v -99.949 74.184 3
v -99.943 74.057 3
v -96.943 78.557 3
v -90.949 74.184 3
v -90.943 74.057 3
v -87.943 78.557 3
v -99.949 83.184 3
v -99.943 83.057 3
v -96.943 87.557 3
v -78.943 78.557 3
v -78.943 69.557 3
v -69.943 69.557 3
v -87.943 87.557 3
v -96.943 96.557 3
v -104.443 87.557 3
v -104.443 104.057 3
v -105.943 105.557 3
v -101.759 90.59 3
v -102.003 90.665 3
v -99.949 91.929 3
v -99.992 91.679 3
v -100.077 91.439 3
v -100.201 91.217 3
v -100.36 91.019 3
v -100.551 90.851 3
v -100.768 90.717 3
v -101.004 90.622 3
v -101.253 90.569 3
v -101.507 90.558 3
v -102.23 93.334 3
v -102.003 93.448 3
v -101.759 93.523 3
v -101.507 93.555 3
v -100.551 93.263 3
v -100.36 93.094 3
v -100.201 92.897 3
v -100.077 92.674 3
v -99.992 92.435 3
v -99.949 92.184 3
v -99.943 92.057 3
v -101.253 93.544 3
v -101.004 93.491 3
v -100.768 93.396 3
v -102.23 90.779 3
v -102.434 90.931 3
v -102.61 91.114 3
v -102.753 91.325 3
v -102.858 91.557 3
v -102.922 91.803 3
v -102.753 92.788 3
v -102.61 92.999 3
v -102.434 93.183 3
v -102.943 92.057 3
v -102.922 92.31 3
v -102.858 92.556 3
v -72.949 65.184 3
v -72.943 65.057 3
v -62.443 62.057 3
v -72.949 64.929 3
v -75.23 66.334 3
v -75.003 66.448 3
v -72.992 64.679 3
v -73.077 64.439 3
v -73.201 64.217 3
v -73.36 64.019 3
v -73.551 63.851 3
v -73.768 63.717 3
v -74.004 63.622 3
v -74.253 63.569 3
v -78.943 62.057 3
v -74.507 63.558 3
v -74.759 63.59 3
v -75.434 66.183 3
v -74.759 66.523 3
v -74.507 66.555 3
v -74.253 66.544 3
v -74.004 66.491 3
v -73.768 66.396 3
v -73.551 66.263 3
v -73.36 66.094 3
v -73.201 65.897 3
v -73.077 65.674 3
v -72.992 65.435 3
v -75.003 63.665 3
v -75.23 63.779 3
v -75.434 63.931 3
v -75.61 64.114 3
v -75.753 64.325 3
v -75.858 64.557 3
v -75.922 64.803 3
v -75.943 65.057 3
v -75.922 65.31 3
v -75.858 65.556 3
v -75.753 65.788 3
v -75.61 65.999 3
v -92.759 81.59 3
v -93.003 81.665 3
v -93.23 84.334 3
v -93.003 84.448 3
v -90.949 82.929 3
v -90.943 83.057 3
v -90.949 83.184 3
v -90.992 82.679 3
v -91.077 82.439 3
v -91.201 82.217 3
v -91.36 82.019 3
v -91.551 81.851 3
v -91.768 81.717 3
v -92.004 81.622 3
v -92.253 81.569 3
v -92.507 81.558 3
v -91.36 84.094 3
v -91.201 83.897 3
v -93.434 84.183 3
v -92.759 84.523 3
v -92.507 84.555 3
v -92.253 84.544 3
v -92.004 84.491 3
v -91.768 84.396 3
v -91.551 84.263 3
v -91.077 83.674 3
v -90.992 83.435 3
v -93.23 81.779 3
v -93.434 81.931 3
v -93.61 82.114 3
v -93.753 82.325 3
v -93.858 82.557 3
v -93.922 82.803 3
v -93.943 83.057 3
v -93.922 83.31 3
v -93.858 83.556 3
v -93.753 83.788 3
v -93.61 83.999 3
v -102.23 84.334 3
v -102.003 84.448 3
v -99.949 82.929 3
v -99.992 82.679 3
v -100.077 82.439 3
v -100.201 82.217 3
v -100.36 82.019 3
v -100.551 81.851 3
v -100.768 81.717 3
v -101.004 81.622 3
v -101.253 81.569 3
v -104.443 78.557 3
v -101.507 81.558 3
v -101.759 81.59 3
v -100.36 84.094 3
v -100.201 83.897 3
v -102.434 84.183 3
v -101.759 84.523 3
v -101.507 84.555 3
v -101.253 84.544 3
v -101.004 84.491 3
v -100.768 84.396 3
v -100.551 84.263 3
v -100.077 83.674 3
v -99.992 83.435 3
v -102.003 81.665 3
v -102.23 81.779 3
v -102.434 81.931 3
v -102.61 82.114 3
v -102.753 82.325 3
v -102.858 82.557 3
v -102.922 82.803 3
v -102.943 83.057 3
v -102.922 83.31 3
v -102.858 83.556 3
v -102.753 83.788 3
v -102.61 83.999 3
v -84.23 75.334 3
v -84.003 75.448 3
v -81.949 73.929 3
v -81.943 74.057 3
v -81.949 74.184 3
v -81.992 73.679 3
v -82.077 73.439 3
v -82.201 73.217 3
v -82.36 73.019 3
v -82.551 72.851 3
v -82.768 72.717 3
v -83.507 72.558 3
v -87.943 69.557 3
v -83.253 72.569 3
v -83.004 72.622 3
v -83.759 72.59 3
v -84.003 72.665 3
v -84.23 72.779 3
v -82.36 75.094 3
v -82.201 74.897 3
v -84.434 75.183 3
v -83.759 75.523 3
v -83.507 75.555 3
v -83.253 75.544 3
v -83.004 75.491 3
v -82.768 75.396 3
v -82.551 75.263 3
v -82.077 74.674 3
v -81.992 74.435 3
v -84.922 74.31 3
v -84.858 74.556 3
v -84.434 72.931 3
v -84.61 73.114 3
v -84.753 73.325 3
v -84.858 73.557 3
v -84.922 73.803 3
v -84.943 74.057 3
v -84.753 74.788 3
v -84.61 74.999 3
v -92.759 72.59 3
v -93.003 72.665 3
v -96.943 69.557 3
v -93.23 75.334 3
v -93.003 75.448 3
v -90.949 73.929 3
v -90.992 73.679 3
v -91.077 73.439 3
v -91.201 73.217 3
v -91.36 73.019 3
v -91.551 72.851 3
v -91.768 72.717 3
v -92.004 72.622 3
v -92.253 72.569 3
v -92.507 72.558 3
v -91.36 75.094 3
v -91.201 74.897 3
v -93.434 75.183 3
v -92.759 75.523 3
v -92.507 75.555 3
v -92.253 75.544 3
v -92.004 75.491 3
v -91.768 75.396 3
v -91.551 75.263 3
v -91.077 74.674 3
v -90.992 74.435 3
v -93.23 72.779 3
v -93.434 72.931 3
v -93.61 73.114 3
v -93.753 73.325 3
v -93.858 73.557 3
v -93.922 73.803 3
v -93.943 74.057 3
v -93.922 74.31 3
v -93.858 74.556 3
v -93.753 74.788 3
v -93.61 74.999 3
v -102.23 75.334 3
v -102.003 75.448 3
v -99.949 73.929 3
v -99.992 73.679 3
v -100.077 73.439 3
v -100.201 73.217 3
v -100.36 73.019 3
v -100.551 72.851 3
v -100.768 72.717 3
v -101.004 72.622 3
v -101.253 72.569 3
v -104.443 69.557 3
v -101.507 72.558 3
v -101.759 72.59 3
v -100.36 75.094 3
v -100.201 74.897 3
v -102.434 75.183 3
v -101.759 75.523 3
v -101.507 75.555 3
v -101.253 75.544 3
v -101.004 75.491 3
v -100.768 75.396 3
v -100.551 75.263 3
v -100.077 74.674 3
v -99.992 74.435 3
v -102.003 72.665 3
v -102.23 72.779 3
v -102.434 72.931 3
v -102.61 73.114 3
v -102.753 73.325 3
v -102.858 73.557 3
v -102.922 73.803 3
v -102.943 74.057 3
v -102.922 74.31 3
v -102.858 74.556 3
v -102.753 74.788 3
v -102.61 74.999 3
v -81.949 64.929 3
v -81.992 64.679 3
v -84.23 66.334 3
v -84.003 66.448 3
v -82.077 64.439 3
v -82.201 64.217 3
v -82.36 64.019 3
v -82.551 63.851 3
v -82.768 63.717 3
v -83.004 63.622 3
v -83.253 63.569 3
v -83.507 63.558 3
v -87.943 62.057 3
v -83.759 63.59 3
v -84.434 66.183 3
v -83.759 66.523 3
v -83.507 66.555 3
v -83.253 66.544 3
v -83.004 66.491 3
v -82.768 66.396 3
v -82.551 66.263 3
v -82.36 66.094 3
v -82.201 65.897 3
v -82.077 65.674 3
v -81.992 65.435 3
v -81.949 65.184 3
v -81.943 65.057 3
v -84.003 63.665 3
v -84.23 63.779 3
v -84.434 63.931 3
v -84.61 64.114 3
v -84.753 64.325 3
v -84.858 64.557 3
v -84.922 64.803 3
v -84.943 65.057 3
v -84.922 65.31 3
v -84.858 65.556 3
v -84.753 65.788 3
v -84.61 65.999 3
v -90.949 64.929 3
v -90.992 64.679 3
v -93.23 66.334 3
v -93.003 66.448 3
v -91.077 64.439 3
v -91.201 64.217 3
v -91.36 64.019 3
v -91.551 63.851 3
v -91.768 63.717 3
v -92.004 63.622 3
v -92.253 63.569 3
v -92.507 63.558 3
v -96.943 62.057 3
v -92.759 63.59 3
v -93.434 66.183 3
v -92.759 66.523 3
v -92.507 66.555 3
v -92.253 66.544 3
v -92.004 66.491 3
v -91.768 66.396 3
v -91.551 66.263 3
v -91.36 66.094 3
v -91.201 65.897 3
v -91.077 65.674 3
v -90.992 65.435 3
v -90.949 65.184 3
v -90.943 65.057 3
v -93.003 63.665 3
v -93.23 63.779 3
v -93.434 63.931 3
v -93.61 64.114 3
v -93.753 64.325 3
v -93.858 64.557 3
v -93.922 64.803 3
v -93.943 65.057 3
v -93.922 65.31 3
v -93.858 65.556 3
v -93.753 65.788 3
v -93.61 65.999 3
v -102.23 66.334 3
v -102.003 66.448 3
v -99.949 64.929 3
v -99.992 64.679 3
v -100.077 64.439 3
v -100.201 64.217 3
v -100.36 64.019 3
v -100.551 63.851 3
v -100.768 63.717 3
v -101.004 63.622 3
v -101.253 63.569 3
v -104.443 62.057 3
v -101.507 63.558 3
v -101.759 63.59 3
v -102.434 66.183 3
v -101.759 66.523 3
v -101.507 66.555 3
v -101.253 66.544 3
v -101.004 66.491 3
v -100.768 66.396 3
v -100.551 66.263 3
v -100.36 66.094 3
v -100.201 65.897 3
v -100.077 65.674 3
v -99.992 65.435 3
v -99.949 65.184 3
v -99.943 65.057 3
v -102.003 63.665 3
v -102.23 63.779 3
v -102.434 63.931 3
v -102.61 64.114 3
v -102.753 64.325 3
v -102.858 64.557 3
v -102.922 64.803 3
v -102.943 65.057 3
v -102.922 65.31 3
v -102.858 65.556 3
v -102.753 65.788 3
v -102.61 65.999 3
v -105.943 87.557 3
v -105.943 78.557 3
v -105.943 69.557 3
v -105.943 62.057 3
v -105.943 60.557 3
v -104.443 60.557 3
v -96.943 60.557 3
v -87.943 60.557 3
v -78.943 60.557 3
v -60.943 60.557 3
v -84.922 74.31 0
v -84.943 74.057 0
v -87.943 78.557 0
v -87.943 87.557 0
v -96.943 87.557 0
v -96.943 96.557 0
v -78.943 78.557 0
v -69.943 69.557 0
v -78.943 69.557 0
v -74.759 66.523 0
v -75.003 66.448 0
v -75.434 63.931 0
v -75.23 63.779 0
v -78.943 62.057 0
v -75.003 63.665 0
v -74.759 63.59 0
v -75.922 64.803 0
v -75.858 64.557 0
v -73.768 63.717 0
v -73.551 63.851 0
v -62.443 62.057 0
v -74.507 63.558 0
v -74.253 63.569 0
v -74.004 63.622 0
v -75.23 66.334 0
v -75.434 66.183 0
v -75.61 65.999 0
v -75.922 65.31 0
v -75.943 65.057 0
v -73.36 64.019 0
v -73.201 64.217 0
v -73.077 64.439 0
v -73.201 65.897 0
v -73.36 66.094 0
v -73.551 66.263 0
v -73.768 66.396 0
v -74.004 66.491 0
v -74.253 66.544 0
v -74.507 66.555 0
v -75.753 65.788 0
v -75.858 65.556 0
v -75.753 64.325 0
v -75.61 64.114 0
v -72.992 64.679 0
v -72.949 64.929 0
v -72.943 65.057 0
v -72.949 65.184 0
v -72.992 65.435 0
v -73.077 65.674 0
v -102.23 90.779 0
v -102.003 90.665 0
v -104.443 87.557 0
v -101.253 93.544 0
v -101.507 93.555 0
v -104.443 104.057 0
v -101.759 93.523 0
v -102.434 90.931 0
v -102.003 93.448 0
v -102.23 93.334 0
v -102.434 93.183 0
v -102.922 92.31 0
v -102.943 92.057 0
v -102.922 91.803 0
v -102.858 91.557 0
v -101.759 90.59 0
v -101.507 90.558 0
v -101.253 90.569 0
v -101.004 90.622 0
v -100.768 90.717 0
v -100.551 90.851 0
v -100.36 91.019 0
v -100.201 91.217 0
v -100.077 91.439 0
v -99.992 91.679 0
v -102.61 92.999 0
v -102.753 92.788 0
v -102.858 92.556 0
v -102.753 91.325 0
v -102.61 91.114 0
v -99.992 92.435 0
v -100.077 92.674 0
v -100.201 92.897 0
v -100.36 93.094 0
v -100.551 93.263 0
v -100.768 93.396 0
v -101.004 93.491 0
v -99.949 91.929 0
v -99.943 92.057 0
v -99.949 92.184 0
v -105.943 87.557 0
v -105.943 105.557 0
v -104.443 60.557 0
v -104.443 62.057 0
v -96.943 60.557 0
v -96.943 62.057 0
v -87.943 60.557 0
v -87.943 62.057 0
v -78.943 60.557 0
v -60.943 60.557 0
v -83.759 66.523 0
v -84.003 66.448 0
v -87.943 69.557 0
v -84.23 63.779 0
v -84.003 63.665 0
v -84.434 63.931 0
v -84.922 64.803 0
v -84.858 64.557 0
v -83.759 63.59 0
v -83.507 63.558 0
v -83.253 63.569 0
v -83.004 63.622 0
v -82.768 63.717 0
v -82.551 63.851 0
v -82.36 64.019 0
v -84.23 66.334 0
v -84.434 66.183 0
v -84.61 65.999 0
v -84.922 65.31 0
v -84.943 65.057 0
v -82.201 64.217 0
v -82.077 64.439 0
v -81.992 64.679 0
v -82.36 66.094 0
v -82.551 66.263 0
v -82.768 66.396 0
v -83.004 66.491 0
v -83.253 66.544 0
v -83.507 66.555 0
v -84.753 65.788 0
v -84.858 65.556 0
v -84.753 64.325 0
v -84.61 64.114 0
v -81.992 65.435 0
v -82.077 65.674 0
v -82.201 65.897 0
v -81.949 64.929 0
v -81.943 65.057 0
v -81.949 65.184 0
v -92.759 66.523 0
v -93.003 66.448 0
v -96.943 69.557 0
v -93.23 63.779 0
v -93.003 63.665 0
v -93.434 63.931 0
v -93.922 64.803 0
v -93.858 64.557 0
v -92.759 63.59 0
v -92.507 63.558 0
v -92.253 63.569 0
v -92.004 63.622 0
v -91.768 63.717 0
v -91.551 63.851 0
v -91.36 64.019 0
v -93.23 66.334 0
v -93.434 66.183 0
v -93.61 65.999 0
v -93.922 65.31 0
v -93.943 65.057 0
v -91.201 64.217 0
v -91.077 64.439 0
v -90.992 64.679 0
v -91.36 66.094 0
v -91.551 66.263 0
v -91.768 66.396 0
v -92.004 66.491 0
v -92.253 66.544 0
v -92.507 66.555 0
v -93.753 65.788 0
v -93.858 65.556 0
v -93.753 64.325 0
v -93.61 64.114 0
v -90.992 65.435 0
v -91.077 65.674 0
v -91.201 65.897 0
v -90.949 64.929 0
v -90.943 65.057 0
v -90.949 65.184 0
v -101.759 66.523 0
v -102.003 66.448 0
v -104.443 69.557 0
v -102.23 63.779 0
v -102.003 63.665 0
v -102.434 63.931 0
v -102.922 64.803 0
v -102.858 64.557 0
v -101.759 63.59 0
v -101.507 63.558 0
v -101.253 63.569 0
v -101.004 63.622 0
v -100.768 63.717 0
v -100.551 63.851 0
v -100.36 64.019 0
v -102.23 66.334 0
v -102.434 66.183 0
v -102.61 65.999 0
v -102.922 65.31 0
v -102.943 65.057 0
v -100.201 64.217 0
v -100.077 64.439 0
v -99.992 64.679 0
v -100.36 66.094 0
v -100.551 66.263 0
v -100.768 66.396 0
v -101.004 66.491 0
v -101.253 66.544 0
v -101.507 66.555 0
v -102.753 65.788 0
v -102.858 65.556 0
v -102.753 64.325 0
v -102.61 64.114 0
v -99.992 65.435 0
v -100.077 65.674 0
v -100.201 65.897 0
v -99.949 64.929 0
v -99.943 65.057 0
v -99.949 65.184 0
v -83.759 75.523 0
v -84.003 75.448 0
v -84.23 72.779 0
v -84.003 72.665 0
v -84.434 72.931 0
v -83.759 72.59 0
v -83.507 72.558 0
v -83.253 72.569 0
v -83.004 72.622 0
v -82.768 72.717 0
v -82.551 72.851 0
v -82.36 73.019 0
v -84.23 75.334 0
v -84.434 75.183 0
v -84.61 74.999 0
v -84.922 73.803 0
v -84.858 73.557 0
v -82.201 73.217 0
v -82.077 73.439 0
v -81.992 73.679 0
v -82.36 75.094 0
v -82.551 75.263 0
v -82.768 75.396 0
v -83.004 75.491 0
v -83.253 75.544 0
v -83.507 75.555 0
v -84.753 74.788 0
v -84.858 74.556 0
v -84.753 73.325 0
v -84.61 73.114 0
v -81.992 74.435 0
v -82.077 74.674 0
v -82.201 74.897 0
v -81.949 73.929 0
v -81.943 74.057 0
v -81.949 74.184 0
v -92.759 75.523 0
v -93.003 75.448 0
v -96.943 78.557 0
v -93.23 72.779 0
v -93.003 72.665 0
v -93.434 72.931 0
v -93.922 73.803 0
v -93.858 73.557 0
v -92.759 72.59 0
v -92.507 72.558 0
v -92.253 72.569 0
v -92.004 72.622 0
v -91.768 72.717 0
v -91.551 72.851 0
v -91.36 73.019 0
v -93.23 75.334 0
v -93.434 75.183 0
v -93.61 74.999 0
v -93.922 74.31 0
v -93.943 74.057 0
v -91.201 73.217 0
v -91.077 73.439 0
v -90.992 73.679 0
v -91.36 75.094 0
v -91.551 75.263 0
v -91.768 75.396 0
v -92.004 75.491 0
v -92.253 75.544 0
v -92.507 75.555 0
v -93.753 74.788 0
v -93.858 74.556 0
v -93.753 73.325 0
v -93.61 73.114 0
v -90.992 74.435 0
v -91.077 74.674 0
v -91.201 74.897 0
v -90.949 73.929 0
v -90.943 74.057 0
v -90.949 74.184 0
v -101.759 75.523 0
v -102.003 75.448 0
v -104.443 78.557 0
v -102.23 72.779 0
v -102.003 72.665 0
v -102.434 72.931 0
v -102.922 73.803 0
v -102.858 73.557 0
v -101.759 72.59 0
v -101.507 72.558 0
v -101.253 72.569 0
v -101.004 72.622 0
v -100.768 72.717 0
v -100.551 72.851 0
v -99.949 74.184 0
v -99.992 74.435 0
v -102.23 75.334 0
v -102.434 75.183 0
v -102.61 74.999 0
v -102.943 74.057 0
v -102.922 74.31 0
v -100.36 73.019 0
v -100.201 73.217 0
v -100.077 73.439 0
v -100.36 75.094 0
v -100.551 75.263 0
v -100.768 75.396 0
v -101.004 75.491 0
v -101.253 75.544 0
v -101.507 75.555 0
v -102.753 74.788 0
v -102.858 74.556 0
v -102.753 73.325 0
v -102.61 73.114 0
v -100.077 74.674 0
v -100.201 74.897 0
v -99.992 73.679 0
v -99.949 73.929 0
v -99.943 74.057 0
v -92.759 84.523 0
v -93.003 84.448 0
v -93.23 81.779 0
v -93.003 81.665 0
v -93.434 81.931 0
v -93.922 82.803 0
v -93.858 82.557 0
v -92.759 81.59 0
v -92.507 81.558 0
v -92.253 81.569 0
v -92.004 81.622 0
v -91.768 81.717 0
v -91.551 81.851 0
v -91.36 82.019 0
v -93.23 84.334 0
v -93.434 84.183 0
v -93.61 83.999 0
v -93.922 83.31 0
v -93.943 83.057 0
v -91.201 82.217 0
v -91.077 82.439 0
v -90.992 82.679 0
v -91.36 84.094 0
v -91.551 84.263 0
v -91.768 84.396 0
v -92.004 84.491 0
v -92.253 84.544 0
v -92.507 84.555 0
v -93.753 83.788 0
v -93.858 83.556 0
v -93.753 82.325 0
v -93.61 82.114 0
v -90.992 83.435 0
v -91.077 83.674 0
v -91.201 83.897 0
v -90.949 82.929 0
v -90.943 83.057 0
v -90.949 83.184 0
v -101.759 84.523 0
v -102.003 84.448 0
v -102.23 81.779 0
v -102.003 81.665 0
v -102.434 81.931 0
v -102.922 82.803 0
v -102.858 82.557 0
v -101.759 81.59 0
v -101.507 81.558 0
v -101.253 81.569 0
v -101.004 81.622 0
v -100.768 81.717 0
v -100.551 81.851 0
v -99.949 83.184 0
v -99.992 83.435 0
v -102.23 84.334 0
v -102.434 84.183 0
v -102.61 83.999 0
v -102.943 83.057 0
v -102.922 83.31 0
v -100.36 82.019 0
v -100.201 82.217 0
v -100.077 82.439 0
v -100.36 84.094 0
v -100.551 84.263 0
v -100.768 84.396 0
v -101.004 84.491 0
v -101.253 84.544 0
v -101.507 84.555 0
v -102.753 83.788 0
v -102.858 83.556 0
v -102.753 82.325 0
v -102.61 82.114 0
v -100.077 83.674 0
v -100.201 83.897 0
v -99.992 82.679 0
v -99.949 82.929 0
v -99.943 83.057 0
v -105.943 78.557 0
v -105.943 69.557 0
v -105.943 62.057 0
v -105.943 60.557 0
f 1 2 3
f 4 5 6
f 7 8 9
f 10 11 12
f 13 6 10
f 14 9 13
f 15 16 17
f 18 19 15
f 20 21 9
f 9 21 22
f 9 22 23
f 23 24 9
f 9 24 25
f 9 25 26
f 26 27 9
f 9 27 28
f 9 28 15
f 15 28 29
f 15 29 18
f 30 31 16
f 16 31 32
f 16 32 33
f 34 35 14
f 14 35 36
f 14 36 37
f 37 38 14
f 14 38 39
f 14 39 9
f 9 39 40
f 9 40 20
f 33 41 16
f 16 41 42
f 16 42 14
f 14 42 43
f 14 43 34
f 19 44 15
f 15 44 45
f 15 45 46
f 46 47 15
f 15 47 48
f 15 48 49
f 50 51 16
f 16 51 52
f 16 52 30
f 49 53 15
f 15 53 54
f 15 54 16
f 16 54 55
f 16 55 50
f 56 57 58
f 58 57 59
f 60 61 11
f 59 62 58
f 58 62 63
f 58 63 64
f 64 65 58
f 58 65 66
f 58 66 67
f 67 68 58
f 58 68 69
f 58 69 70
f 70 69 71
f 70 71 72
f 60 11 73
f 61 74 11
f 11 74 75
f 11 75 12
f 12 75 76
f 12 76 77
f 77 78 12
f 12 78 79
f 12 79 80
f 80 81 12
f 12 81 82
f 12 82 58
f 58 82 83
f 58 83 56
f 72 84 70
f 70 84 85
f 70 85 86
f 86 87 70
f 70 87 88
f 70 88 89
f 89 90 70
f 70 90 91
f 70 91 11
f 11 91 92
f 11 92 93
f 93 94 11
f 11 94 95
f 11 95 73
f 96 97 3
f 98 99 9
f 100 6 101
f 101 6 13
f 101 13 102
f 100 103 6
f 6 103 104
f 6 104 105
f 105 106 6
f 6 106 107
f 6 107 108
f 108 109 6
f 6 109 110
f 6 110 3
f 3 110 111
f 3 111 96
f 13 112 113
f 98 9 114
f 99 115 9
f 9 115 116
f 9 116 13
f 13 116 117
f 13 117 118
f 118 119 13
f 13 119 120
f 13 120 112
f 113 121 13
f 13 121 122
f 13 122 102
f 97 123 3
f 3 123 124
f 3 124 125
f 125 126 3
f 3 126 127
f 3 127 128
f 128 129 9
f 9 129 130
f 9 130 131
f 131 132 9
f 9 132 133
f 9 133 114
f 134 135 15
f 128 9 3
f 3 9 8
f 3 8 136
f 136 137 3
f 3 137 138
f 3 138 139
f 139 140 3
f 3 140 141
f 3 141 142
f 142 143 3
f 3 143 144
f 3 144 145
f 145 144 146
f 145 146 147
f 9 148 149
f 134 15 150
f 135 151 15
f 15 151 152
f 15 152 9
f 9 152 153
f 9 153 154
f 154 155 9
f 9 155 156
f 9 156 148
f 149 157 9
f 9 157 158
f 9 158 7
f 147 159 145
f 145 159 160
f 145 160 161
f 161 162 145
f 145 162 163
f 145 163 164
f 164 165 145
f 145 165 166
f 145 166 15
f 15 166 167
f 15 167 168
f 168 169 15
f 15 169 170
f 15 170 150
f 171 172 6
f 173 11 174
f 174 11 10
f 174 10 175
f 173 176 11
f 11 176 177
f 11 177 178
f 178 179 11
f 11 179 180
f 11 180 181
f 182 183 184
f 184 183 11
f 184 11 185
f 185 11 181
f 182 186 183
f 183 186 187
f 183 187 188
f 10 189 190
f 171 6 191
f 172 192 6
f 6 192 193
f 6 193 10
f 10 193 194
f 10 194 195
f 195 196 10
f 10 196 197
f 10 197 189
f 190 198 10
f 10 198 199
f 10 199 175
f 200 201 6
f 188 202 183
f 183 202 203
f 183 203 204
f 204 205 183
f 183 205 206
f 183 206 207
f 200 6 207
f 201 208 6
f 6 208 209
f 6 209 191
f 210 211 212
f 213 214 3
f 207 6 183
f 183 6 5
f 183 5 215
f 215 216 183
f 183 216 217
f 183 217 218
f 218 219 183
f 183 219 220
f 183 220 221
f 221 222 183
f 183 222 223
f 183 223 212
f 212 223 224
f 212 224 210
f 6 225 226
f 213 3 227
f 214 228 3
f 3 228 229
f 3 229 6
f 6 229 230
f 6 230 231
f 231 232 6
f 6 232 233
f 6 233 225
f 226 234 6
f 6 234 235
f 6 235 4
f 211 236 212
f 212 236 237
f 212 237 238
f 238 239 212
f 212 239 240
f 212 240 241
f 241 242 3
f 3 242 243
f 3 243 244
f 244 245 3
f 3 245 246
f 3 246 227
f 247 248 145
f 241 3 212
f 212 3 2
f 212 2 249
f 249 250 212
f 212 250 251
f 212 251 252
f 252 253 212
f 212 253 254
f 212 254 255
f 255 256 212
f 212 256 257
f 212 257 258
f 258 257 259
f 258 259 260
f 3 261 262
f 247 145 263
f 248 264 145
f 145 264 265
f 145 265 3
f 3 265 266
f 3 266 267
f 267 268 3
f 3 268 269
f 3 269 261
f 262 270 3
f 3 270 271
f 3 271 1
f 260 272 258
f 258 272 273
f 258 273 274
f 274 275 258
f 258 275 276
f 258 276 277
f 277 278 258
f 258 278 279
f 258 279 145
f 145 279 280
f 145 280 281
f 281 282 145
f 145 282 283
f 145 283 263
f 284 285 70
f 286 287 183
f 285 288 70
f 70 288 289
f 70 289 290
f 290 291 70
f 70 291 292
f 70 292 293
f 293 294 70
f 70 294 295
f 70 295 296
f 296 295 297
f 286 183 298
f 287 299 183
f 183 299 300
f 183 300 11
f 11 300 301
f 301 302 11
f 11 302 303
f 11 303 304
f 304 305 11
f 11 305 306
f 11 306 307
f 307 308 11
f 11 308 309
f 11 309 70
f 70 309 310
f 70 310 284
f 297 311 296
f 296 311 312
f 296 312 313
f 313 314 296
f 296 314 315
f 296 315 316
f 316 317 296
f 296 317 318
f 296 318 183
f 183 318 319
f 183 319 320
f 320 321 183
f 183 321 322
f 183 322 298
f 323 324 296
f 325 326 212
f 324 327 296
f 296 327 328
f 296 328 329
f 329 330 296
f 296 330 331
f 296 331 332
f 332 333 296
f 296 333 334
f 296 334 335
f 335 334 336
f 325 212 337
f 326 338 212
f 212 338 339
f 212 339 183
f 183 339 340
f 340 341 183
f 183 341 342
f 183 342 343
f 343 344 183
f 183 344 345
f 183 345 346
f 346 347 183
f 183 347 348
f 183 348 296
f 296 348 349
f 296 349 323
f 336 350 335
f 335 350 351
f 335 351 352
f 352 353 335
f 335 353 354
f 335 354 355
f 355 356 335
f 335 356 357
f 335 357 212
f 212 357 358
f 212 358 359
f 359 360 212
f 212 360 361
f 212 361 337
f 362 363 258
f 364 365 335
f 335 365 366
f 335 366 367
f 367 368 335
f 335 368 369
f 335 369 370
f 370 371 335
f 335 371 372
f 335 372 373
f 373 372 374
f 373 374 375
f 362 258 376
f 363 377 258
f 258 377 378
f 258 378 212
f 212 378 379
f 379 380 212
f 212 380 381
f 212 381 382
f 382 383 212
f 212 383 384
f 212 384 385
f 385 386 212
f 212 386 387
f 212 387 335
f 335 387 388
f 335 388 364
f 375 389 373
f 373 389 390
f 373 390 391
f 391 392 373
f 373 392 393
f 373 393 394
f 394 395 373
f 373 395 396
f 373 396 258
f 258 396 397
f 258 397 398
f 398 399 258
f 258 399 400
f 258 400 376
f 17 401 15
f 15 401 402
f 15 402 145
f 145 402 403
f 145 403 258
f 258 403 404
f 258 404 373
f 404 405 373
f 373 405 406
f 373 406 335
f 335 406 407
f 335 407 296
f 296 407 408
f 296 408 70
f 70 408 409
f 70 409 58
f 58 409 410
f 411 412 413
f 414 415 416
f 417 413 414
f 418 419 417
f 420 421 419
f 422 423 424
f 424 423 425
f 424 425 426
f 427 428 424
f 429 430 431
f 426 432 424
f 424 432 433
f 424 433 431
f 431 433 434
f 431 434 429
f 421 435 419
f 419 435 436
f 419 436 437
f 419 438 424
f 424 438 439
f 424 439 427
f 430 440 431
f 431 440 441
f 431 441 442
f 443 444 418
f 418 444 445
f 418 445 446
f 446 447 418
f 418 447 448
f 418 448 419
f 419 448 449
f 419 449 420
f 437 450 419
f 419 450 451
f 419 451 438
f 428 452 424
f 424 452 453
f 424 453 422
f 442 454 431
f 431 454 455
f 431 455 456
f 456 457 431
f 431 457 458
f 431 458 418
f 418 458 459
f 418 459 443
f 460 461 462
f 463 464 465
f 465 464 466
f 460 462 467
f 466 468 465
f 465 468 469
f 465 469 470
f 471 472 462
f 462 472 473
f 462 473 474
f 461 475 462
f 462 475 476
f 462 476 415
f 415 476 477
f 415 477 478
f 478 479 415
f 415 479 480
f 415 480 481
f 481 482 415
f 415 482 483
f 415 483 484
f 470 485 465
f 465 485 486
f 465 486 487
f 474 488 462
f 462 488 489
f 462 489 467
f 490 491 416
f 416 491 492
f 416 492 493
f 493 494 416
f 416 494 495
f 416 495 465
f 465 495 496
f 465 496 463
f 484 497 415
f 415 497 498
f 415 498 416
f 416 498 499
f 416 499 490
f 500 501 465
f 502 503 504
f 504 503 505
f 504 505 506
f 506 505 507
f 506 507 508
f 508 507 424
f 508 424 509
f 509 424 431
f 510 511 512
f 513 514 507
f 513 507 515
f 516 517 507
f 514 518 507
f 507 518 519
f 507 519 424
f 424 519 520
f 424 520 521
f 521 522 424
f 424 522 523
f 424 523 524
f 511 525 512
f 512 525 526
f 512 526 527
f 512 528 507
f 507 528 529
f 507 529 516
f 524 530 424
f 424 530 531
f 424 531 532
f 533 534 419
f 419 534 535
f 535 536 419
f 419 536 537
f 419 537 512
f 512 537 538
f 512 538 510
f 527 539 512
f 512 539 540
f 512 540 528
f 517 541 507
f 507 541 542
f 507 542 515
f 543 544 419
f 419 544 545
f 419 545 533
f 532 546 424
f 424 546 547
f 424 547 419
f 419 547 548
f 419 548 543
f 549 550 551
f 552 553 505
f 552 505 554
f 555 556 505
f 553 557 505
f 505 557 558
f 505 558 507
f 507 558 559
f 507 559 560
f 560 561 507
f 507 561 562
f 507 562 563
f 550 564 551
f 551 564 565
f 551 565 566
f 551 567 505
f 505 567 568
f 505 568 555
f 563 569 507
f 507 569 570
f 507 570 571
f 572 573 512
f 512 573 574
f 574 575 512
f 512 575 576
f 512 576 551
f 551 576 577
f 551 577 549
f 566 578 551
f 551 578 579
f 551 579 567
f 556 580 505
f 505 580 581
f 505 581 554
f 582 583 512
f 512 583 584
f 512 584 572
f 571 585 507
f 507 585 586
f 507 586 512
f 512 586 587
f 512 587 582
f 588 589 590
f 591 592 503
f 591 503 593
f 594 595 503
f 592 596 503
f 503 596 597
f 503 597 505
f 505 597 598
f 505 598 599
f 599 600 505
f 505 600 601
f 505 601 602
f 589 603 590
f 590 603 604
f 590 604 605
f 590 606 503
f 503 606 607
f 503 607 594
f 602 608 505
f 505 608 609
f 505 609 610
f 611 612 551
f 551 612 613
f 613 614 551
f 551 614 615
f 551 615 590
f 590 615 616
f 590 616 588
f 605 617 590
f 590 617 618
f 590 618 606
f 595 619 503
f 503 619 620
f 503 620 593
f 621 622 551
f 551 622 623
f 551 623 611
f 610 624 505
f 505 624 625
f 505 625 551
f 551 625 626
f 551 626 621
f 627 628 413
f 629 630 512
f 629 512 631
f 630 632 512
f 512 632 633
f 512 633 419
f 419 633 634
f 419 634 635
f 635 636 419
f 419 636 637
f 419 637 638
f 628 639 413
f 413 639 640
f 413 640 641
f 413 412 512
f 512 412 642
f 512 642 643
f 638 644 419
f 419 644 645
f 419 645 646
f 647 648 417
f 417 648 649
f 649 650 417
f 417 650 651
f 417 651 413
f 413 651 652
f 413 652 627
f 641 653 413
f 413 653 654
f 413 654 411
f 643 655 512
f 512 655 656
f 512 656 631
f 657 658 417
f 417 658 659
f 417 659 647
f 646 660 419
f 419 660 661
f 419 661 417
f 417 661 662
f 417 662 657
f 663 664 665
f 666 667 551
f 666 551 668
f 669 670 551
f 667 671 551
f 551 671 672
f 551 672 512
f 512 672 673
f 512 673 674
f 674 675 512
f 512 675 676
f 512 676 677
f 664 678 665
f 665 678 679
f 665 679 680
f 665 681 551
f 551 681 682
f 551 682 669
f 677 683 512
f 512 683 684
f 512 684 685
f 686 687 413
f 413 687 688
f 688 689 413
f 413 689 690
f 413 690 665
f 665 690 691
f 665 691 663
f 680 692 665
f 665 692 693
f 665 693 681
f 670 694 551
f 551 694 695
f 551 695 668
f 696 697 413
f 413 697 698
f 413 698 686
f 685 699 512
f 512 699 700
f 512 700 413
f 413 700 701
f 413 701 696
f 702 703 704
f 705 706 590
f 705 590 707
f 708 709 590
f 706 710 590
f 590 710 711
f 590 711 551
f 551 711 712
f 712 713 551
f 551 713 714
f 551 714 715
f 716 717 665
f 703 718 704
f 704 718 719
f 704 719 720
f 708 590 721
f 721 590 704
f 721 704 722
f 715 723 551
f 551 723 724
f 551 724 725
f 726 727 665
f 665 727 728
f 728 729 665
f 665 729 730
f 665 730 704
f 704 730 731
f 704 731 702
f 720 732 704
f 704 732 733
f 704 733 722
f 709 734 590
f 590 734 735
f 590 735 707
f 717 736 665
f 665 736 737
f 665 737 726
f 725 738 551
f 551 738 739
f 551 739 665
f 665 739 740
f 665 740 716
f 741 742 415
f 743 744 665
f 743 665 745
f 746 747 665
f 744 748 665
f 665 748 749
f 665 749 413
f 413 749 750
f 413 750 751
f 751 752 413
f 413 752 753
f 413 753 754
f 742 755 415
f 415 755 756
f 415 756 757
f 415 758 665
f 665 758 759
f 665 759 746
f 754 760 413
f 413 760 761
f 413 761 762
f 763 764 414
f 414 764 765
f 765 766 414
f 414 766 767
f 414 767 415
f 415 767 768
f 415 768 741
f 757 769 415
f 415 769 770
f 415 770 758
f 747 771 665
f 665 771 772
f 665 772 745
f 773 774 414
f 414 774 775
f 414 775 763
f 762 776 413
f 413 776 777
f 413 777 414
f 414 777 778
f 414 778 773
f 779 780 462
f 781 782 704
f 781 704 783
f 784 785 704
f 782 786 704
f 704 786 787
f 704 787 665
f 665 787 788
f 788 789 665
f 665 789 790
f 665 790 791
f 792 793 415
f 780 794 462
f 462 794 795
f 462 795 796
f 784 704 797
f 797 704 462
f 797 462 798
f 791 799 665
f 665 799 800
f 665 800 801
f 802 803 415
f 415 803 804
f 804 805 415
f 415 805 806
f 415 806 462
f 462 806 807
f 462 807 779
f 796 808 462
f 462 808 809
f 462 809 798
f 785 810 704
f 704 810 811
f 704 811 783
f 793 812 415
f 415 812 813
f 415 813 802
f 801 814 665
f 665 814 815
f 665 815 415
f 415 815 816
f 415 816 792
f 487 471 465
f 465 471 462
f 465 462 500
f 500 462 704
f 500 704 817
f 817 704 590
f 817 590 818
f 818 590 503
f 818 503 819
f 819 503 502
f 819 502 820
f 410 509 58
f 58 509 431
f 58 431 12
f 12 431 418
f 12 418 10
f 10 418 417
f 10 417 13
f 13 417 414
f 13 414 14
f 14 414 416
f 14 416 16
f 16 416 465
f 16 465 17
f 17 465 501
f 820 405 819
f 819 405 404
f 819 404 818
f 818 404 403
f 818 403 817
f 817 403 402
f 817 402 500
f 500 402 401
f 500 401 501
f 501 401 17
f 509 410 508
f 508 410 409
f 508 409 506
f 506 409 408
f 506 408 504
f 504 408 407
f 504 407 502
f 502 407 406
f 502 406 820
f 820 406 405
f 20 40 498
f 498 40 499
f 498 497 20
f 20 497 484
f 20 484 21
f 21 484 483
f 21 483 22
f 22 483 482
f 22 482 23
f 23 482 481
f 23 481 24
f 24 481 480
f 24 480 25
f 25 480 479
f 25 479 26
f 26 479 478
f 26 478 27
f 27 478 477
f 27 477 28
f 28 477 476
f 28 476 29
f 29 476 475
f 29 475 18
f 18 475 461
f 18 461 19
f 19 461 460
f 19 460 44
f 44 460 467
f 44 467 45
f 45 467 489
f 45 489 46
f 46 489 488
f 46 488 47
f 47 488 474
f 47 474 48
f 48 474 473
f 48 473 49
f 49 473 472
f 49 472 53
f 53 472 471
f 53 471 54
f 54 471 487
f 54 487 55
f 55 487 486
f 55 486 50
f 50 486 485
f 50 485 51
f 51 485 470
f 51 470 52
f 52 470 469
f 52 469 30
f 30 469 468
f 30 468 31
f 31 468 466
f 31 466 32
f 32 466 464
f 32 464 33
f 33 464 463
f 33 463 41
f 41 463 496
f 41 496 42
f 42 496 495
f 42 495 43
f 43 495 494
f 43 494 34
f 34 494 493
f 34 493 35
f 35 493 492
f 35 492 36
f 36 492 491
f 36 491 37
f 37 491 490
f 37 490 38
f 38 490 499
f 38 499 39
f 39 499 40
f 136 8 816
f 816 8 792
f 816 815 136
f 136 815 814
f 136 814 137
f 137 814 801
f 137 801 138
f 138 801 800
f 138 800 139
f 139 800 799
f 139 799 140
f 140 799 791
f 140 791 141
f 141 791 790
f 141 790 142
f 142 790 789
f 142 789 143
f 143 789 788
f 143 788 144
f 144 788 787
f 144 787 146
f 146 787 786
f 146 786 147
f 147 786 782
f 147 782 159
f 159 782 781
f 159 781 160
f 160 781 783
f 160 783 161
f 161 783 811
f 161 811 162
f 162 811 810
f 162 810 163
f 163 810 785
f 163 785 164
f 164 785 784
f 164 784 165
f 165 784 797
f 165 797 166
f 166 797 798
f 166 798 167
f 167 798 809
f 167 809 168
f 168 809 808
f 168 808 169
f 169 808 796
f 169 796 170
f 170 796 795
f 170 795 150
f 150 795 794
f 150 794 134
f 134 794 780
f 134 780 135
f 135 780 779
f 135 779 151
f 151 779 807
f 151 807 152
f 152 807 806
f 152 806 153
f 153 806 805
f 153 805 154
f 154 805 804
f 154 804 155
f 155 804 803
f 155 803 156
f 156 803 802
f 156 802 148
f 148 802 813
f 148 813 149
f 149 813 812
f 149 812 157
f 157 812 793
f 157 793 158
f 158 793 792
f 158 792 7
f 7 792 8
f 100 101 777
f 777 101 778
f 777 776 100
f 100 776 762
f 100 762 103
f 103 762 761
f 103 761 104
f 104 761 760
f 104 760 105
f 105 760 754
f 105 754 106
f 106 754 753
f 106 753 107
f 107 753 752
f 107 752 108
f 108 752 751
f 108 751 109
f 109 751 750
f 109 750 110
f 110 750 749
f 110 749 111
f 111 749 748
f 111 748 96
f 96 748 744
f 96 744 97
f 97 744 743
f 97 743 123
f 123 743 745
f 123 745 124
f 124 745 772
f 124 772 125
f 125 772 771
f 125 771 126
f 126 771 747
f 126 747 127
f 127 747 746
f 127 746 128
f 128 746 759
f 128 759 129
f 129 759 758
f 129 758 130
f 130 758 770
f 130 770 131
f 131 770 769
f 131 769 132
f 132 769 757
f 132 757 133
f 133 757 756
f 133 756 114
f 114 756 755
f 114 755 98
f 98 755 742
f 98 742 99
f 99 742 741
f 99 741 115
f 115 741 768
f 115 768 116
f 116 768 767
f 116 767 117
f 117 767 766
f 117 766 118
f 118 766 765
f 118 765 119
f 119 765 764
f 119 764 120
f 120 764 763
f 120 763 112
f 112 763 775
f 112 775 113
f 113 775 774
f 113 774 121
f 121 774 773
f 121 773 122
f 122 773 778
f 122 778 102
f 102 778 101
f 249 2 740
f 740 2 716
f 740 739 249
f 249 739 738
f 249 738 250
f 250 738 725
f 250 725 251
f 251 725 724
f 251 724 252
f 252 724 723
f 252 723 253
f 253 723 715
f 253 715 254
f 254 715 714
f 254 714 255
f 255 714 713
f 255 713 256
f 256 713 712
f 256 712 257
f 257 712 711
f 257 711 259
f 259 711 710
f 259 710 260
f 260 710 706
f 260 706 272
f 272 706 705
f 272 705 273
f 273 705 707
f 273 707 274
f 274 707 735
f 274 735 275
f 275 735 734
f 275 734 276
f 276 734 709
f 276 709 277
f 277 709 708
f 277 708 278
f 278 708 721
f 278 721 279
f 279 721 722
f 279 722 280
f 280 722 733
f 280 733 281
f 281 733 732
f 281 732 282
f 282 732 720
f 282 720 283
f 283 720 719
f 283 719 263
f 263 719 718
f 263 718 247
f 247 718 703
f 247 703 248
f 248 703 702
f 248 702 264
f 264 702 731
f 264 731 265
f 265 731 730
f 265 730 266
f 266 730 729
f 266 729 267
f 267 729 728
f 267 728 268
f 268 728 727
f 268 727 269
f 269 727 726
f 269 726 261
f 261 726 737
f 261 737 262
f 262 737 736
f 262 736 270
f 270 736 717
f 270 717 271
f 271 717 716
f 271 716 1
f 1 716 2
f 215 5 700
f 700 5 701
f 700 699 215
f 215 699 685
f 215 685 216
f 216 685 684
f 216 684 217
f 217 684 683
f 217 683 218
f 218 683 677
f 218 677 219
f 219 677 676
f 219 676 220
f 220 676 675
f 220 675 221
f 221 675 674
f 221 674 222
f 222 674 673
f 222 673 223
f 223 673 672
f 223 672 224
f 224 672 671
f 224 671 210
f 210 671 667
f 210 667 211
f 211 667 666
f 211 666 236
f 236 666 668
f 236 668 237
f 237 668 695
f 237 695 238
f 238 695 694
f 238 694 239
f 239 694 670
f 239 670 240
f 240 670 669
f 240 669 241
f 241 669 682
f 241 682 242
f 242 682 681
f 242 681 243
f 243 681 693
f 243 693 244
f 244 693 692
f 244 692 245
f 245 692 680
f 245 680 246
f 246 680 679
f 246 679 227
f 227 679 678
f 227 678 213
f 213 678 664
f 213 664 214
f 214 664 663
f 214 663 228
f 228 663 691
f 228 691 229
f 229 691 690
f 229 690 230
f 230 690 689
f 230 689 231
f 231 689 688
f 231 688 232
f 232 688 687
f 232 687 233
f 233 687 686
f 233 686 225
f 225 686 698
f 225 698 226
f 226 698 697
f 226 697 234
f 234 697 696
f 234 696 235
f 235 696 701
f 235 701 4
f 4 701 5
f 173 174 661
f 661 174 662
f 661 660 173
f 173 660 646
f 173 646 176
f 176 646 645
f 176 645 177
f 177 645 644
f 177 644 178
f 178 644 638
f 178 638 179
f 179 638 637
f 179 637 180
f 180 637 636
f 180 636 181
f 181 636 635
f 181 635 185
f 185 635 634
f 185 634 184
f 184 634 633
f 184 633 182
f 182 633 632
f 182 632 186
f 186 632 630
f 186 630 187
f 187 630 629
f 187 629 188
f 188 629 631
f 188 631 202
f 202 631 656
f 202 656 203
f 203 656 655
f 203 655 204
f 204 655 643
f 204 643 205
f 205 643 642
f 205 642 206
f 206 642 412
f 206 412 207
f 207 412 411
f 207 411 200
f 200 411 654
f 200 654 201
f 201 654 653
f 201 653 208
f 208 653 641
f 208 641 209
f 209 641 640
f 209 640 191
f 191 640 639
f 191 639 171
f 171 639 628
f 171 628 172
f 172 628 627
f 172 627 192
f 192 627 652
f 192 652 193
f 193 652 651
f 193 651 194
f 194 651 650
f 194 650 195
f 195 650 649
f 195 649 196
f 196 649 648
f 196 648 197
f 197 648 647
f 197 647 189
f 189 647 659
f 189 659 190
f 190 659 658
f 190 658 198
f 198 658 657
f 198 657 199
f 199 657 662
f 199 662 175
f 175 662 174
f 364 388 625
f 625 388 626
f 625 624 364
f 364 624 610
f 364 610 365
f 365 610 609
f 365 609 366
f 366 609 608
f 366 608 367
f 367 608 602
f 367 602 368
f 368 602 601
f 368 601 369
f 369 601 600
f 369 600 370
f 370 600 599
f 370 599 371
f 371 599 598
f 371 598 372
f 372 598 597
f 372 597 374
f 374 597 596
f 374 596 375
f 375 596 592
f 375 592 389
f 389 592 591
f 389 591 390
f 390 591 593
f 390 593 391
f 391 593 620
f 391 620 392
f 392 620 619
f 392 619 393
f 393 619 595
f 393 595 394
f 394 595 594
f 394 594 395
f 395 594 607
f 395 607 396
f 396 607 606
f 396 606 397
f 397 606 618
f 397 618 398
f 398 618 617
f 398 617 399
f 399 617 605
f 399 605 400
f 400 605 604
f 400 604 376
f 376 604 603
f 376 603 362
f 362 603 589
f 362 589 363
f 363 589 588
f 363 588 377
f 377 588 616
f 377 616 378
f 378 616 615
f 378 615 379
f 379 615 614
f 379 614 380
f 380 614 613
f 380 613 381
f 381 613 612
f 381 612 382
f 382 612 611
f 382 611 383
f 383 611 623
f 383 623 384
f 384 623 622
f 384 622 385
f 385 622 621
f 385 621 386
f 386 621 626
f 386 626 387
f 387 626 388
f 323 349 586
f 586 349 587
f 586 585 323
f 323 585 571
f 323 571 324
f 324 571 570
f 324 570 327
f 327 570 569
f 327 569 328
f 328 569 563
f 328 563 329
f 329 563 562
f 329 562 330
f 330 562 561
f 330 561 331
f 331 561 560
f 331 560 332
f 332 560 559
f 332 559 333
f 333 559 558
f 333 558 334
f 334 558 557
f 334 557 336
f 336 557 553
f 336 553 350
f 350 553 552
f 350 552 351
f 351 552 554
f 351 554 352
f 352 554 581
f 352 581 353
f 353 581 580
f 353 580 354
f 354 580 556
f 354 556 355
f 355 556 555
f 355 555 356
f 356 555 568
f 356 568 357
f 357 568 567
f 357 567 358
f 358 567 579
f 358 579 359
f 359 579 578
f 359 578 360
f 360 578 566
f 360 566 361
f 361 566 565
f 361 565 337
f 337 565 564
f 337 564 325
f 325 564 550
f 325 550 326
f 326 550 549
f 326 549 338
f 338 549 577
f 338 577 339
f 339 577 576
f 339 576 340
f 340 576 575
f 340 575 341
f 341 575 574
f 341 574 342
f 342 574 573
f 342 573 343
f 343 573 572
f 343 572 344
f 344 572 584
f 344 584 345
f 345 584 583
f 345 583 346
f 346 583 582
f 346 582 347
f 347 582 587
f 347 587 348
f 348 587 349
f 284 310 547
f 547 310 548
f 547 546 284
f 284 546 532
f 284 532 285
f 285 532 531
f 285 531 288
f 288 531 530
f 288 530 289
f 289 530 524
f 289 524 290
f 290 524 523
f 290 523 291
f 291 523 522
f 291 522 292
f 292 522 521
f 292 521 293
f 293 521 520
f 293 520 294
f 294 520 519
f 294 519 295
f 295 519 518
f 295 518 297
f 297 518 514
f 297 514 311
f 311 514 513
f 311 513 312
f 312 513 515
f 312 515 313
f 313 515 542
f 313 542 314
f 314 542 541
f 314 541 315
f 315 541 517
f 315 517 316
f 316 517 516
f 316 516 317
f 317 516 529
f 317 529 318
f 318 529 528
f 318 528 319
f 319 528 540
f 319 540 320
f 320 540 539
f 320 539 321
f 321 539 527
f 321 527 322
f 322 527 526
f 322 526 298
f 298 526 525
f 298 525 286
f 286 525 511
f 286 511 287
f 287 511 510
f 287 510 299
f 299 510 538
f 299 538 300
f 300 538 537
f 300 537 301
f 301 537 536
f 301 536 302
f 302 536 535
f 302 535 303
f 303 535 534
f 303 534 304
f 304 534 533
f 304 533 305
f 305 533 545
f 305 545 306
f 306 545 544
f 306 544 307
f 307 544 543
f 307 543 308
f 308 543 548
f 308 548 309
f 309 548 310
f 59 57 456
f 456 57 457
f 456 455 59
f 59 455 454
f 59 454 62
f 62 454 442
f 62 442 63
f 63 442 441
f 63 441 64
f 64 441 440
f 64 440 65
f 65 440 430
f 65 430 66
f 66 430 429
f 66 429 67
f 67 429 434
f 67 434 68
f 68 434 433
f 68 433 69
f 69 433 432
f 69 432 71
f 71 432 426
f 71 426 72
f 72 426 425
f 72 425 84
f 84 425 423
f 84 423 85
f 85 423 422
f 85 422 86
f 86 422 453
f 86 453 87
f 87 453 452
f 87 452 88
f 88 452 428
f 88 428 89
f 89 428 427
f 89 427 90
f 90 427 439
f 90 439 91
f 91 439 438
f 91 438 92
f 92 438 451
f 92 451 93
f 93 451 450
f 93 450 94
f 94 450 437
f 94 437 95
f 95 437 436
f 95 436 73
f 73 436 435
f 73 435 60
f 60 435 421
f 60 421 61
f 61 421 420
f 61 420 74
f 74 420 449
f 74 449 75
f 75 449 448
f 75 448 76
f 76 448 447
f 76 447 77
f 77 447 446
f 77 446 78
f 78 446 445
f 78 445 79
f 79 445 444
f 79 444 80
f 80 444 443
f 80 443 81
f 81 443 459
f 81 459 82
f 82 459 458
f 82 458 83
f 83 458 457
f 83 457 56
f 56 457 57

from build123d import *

# Parameters (mm, degrees)
MODEL_R                 = 1.5
SALIENTE_EXTRUIR1_DEPTH = 3


with BuildPart() as part:
    # Model → Saliente-Extruir1 (new body)
    with BuildSketch(Plane.XY):
        Polygon((-105.943383637, 105.556539338), (-105.943383637, 60.556539338), (-60.943383637, 60.556539338), align=None)
        with Locations((-101.443383637, 92.056539338)):
            Circle(MODEL_R, mode=Mode.SUBTRACT)
        with Locations((-101.443383637, 83.056539338)):
            Circle(MODEL_R, mode=Mode.SUBTRACT)
        with Locations((-92.443383637, 83.056539338)):
            Circle(MODEL_R, mode=Mode.SUBTRACT)
        with Locations((-101.443383637, 74.056539338)):
            Circle(MODEL_R, mode=Mode.SUBTRACT)
        with Locations((-92.443383637, 74.056539338)):
            Circle(MODEL_R, mode=Mode.SUBTRACT)
        with Locations((-83.443383637, 74.056539338)):
            Circle(MODEL_R, mode=Mode.SUBTRACT)
        with Locations((-101.443383637, 65.056539338)):
            Circle(MODEL_R, mode=Mode.SUBTRACT)
        with Locations((-92.443383637, 65.056539338)):
            Circle(MODEL_R, mode=Mode.SUBTRACT)
        with Locations((-83.443383637, 65.056539338)):
            Circle(MODEL_R, mode=Mode.SUBTRACT)
        with Locations((-74.443383637, 65.056539338)):
            Circle(MODEL_R, mode=Mode.SUBTRACT)
    extrude(amount=SALIENTE_EXTRUIR1_DEPTH)


solid = part.part
